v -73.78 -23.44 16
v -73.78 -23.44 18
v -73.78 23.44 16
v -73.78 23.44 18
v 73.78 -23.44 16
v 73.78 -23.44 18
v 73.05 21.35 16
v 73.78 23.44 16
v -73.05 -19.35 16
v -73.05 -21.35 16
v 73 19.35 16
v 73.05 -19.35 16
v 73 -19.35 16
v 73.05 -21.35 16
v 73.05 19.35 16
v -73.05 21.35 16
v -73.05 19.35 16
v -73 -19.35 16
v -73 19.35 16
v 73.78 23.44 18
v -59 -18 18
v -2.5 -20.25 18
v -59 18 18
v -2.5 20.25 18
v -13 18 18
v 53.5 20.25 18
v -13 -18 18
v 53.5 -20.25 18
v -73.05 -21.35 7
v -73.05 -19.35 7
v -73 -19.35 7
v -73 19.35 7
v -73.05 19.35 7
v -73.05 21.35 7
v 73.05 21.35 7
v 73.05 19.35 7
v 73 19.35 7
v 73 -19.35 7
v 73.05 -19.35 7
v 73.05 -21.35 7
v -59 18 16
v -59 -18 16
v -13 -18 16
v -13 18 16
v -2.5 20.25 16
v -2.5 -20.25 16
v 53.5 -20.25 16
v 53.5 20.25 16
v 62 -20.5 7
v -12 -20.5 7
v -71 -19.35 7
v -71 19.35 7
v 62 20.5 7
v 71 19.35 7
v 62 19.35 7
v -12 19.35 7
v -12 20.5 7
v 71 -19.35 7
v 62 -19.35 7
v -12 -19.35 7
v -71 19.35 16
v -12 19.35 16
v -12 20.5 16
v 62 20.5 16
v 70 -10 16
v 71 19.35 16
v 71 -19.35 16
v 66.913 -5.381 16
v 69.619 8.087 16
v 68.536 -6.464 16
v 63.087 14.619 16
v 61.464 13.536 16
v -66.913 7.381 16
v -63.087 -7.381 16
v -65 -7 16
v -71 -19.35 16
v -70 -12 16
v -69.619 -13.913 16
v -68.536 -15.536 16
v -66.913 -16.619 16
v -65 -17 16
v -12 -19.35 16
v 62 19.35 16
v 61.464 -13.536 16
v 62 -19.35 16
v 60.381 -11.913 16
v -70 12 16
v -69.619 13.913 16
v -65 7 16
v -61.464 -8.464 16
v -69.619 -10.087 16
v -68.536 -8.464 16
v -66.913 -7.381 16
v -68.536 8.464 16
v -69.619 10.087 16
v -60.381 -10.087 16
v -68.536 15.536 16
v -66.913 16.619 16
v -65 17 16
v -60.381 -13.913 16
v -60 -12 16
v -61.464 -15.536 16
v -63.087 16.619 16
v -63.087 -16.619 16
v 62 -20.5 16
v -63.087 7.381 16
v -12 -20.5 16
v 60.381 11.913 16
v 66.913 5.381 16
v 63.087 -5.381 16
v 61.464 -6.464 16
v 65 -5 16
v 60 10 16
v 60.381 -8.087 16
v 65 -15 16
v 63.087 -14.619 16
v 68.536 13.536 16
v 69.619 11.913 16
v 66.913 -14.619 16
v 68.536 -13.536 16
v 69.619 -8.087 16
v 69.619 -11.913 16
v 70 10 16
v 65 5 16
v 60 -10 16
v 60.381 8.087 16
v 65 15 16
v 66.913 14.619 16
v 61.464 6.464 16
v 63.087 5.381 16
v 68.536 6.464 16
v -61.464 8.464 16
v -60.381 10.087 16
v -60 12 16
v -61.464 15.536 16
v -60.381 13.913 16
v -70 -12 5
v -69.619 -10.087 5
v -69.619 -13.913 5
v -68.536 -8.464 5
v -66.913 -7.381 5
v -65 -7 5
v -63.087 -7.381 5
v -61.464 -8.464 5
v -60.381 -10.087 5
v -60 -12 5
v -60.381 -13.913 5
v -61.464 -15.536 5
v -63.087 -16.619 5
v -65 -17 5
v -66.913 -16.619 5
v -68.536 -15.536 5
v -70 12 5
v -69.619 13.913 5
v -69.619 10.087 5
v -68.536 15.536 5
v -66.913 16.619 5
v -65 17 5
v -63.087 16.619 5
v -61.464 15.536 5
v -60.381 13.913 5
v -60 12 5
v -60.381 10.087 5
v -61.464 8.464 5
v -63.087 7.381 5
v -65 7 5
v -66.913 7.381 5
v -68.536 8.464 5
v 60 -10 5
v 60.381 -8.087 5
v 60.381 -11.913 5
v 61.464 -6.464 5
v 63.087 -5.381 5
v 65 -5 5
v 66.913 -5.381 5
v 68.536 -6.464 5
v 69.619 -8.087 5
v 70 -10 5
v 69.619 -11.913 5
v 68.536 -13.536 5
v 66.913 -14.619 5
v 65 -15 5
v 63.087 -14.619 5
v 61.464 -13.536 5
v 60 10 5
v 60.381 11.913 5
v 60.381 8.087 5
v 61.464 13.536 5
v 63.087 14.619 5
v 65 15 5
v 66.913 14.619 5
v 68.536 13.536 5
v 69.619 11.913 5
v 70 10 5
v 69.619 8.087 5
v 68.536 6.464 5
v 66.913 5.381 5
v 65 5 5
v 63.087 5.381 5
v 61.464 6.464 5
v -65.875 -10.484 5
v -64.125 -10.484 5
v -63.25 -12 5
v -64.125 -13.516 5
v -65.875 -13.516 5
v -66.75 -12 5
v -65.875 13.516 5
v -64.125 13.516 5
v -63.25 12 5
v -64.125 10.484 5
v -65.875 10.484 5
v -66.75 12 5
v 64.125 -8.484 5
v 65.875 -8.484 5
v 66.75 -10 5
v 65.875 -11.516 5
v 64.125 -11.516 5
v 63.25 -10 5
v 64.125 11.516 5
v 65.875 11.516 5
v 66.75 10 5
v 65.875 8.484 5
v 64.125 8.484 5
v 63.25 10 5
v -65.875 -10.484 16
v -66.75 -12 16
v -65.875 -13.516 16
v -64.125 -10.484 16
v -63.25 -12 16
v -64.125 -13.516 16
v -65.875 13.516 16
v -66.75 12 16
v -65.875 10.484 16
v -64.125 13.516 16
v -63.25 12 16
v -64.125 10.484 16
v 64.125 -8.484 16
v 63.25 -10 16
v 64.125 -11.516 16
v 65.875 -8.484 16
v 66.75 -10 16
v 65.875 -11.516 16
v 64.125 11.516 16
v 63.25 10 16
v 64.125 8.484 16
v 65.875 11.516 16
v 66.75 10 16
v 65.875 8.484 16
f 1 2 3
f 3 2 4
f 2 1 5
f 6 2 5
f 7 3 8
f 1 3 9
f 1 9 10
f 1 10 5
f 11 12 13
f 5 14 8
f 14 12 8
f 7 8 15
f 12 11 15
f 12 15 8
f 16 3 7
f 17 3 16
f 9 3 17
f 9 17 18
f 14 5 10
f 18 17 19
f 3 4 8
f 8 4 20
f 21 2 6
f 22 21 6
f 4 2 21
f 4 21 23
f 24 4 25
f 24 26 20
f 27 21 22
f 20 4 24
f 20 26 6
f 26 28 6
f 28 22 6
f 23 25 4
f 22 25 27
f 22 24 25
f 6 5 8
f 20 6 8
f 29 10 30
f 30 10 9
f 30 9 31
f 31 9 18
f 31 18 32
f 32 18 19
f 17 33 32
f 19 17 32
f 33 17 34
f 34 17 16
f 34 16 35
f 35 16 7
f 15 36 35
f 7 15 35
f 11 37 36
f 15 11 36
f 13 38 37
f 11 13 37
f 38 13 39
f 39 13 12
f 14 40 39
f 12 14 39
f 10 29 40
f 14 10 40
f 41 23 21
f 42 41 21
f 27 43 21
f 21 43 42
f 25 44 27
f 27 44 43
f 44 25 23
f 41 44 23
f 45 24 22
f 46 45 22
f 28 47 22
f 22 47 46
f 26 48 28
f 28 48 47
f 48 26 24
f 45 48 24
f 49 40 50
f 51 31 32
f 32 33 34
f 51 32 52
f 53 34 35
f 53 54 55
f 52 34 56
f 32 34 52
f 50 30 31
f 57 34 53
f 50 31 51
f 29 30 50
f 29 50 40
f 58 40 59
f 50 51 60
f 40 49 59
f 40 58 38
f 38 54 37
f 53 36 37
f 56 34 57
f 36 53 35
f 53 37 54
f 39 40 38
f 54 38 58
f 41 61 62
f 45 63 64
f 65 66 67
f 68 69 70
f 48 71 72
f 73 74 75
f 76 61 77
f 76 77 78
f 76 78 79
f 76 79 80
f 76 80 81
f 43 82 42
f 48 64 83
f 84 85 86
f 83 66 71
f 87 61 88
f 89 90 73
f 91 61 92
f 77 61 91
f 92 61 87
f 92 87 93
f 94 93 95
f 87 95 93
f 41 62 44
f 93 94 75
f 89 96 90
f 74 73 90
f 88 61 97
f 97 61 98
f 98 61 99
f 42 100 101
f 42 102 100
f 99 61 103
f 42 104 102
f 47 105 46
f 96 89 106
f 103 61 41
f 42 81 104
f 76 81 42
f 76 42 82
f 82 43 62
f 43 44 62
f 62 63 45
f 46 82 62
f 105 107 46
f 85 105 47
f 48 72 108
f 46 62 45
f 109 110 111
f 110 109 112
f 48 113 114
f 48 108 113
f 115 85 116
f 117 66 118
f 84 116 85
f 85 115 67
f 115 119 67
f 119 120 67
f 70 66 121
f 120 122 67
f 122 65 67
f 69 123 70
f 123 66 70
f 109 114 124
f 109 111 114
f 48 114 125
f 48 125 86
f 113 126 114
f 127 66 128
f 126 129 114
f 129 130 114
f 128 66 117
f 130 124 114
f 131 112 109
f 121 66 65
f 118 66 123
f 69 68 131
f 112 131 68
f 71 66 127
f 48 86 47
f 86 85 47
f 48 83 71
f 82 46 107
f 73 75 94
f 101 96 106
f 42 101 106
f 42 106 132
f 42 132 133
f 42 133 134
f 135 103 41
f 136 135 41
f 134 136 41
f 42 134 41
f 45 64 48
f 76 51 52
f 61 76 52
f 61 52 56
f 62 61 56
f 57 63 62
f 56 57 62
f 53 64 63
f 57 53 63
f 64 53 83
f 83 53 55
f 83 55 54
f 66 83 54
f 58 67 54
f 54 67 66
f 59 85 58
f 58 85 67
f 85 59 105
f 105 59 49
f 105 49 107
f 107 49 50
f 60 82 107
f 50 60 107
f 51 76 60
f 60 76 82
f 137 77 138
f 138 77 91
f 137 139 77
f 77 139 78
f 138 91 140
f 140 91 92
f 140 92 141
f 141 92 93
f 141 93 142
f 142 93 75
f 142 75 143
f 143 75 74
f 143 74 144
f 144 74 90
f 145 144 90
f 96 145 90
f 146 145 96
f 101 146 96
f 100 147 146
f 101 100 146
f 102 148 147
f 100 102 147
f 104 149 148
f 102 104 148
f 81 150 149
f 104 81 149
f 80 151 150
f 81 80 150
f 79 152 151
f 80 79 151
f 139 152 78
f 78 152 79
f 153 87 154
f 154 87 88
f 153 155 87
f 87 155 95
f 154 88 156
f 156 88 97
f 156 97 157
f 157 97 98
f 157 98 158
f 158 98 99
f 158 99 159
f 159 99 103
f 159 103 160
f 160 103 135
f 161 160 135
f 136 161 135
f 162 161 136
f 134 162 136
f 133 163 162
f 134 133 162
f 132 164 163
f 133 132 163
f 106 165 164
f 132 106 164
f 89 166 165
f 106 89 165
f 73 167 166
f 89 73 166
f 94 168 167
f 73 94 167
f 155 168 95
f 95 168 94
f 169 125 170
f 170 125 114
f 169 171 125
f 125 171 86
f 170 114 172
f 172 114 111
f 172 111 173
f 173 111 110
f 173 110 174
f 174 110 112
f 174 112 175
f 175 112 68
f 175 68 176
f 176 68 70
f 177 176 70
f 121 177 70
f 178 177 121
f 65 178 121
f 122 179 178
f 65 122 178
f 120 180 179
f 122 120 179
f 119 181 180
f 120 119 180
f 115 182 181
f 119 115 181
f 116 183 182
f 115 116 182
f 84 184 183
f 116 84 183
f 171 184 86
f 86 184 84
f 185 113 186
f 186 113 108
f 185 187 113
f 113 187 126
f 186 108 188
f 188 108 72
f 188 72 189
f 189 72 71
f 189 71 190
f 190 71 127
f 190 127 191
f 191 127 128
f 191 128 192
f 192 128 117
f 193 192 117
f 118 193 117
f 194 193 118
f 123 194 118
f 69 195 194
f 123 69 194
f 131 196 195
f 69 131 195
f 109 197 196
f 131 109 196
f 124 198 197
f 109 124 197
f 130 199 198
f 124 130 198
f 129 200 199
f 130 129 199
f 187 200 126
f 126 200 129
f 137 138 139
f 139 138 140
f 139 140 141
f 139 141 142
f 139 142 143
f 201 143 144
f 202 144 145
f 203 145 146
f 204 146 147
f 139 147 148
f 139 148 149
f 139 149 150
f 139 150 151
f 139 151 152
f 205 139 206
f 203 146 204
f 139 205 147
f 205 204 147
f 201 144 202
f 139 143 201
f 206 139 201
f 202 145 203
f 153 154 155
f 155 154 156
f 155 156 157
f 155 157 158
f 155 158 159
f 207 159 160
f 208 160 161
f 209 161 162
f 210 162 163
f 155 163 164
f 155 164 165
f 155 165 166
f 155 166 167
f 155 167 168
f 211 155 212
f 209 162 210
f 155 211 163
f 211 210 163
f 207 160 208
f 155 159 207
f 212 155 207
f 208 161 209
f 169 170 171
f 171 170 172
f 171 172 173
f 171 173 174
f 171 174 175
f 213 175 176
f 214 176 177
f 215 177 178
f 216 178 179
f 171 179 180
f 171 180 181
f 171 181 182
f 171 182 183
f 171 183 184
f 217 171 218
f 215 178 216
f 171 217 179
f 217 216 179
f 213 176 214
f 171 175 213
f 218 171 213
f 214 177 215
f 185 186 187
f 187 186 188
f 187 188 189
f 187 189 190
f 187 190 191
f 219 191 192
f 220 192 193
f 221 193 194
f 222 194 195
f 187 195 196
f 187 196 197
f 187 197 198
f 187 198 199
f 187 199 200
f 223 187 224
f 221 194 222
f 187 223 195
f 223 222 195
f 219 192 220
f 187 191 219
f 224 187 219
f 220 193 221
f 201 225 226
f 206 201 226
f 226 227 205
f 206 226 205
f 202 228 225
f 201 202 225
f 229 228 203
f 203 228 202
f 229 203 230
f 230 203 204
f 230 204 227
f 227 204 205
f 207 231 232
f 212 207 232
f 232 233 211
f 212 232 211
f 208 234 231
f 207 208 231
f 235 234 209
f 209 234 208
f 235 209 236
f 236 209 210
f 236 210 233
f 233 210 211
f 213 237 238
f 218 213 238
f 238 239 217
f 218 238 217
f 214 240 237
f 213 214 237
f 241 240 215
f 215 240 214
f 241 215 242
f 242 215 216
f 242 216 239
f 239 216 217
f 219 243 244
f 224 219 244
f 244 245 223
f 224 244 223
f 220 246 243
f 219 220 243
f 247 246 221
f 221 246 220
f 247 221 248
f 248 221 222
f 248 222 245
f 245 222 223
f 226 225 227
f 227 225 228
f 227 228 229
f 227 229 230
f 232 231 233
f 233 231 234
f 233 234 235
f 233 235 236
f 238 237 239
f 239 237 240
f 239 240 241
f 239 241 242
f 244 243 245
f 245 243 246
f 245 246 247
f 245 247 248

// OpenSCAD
module trim_tftFacePlate_facia(){
	difference(){
		//mainBox
		translate([0,0,17]){
//			color([0.6,0.8,0.2]) cube(size=[150.56,42.88,2],center=true);
			color([0.6,0.8,0.2]) cube(size=[147.56,46.88,2],center=true);
		}
		//displayHole
		translate([25.5,0,16.75]){
			color([0.2,0.8,0.2]) cube(size=[56,40.5,5],center=true);
		}
		//keyPadHole
		translate([-36,0,16.75]){
			color([0.2,0.8,0.2]) cube(size=[46,36,5],center=true);
		}
	}
	//topAndBottomTrim
	difference(){
		translate([0,-20.35,12]){
			color([.3,.5,.2]) cube(size=[146.1,2,10],center=true);
		}
		translate([25,-17.5,10]){
			color([.3,.1,.2]) cube(size=[74,6,17],center=true);
		}
	}
	difference(){
		translate([0,20.35,12]){
			color([.3,.5,.2]) cube(size=[146.1,2,10],center=true);
		}
		translate([25,17.5,10]){
			color([.3,.1,.2]) cube(size=[74,6,17],center=true);
		}
	}
	//sideTrim
	translate([-72,0,12]){
		color([.3,.5,.2]) cube(size=[2,41.3,10],center=true);
	}	
	translate([72,0,12]){
		color([.3,.5,.2]) cube(size=[2,41.3,10],center=true);
	}	
	difference(){
		//screwBlocks
		translate([-65,12,11]){
			cylinder(r=5,h=12,center=true);
		}
		//screwHoles
		translate([-65,12,11]){
			cylinder(r=1.75,h=15,center=true);
		}
	}
	difference(){
		translate([-65,-12,11]){
			cylinder(r=5,h=12,center=true);
		}
		translate([-65,-12,11]){
			cylinder(r=1.75,h=15,center=true);
		}
	}
	difference(){
		translate([65,10,11]){
			cylinder(r=5,h=12,center=true);
		}
		translate([65,10,11]){
			cylinder(r=1.75,h=15,center=true);
		}
	}
	difference(){
		translate([65,-10,11]){
			cylinder(r=5,h=12,center=true);
		}
		translate([65,-10,11]){
			cylinder(r=1.75,h=15,center=true);
		}
	}
}

trim_tftFacePlate_facia();
